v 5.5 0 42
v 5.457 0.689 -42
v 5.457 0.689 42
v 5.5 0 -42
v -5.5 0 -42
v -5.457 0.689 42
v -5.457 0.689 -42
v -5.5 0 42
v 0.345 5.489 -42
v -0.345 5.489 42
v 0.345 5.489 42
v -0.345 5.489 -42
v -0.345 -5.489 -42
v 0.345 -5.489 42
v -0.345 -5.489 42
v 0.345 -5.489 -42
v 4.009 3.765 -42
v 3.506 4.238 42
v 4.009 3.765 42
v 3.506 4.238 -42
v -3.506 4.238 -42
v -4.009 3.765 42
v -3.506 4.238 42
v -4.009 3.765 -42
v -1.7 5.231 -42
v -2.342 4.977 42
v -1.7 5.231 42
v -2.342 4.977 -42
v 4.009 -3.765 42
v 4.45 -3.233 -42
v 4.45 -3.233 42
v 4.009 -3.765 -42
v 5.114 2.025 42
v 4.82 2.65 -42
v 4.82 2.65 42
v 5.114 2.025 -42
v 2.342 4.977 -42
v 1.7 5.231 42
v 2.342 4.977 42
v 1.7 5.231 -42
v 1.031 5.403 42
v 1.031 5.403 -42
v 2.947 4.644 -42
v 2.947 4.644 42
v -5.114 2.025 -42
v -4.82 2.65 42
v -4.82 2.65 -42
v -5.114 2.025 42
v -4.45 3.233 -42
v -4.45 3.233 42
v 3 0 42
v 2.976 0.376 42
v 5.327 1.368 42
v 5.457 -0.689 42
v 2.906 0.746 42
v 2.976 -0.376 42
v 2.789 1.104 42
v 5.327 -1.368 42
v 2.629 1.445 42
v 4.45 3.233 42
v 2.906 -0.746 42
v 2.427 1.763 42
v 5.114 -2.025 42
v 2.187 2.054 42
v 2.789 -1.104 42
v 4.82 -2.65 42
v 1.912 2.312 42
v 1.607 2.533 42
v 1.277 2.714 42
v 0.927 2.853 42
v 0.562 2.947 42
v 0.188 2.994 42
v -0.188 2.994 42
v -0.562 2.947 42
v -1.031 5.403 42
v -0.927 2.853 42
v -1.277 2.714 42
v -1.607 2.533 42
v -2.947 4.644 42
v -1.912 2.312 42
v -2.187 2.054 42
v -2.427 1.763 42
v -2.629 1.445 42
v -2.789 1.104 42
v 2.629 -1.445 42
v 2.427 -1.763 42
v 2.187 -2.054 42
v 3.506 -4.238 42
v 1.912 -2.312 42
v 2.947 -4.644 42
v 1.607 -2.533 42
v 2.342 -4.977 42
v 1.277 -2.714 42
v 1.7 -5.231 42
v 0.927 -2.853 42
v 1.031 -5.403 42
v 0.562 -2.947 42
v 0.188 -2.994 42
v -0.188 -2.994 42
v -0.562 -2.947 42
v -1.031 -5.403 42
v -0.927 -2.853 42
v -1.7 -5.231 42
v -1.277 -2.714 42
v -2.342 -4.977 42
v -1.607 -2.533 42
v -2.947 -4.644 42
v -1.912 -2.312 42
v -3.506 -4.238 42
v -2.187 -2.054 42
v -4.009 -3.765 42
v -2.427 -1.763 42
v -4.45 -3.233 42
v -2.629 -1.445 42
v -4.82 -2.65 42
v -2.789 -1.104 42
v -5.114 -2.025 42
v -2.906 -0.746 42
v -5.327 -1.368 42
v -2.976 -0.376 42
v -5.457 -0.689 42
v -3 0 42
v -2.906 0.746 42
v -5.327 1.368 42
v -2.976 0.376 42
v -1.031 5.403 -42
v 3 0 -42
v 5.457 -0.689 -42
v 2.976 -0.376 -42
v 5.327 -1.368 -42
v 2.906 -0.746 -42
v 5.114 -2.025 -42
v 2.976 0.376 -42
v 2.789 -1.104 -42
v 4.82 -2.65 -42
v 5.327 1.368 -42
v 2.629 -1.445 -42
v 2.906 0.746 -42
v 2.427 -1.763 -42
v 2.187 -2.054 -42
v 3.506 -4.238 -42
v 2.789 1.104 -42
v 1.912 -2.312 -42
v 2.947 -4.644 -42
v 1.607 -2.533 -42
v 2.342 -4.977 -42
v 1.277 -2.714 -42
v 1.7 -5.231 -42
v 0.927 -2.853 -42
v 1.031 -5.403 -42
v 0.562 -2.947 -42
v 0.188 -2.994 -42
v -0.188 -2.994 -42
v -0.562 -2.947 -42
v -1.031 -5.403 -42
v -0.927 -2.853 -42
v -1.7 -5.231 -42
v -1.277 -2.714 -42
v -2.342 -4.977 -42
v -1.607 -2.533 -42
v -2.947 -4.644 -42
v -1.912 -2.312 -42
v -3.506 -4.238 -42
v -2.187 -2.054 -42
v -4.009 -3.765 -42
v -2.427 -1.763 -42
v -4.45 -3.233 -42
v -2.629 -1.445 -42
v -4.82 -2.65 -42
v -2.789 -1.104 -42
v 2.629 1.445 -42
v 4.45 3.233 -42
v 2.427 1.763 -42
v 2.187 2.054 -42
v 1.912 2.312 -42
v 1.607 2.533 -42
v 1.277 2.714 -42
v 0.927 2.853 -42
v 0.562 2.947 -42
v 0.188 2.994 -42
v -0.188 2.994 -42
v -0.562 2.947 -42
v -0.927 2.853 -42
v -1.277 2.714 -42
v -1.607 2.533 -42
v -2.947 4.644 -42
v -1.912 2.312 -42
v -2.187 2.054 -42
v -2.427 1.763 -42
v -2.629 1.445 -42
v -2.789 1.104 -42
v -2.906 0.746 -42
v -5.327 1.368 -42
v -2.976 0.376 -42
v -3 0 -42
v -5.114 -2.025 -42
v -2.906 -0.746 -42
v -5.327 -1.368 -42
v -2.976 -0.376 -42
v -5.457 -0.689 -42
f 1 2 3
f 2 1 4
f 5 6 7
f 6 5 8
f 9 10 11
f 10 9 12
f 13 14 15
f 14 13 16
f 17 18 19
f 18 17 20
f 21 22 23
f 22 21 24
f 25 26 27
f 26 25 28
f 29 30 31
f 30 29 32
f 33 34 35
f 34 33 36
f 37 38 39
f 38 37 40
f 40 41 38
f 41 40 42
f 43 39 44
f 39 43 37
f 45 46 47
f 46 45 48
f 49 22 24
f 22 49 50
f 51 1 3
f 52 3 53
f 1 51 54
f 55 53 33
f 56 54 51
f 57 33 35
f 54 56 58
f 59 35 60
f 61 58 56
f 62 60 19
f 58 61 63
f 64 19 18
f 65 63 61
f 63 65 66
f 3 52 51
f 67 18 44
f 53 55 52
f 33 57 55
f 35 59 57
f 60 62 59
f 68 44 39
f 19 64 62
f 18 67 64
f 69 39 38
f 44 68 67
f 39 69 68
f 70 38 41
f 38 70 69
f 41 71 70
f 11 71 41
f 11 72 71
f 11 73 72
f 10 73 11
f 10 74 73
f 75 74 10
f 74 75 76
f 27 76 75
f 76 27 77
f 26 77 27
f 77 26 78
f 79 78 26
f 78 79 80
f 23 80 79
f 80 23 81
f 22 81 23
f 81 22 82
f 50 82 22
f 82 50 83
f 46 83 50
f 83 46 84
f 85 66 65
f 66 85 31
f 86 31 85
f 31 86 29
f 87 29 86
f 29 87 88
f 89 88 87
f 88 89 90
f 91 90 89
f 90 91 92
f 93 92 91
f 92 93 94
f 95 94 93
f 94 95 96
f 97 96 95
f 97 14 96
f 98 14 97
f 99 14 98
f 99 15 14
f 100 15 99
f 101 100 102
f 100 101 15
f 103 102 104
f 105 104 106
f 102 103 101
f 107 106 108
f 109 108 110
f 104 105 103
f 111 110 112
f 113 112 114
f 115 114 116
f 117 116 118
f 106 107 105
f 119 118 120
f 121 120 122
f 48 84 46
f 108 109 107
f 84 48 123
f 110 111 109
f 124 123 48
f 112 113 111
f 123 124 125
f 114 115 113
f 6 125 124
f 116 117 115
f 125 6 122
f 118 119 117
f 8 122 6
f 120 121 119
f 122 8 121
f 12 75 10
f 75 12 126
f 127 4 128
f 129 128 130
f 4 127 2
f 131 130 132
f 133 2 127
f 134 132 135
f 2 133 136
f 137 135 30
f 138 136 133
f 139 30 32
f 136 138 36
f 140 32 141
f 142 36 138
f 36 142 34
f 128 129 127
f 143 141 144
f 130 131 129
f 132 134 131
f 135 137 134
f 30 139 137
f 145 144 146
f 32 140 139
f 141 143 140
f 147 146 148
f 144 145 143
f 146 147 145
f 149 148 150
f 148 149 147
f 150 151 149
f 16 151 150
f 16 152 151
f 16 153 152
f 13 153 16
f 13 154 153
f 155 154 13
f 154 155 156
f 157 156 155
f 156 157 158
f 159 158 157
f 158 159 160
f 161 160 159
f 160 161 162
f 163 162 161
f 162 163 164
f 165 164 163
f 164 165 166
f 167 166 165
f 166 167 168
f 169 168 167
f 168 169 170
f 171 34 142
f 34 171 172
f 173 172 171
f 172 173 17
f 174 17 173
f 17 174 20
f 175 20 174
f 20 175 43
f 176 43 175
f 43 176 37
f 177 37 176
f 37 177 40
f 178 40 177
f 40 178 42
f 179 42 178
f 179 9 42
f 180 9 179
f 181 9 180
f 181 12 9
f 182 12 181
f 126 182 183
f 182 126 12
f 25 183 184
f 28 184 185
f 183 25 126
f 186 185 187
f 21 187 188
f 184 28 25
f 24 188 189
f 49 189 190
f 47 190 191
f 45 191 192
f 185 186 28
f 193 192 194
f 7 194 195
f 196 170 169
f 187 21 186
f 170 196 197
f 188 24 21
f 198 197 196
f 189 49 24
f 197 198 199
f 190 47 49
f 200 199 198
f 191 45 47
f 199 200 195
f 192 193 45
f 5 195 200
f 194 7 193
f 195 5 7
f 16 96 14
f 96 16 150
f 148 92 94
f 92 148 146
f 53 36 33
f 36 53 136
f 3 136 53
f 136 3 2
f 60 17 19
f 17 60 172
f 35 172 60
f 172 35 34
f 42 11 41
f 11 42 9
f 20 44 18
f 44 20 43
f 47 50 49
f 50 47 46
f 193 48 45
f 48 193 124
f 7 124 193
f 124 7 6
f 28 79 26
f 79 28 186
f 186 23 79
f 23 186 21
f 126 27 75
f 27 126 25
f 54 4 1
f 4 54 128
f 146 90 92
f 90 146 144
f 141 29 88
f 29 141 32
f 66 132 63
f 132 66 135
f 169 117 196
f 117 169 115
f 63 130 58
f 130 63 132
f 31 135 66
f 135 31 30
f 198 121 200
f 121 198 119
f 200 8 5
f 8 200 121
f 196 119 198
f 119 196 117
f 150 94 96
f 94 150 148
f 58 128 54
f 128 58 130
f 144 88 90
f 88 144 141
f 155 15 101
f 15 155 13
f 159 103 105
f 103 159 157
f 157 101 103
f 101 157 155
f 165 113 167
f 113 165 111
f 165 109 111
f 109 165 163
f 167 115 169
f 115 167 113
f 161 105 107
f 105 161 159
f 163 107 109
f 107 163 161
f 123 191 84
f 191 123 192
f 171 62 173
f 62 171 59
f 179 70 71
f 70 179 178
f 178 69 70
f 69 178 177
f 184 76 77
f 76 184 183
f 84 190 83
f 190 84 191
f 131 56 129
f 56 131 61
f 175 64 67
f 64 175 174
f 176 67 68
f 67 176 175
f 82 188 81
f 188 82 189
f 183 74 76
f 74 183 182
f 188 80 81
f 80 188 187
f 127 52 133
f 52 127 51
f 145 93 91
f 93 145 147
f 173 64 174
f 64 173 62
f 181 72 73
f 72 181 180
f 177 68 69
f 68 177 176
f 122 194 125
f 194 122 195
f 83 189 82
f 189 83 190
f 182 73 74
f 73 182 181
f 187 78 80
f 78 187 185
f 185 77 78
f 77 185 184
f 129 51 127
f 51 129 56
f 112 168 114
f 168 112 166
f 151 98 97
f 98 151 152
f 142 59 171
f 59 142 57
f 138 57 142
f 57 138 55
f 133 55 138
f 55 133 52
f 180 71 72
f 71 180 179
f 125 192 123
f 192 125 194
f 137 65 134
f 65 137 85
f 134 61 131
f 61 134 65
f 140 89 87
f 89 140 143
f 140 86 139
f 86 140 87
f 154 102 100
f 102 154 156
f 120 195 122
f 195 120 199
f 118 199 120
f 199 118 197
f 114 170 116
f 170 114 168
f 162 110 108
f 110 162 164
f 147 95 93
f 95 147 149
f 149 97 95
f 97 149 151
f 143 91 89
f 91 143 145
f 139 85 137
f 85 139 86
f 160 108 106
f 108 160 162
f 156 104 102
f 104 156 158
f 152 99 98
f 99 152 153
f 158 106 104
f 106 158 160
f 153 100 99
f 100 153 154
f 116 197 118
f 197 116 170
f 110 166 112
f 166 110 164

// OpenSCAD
$fn = 50;


difference() {
	union() {
		translate(v = [0, 0, -42.0000000000]) {
			cylinder(h = 84, r = 5.5000000000);
		}
	}
	union() {
		translate(v = [0, 0, -100.0000000000]) {
			cylinder(h = 200, r = 3);
		}
	}
}
